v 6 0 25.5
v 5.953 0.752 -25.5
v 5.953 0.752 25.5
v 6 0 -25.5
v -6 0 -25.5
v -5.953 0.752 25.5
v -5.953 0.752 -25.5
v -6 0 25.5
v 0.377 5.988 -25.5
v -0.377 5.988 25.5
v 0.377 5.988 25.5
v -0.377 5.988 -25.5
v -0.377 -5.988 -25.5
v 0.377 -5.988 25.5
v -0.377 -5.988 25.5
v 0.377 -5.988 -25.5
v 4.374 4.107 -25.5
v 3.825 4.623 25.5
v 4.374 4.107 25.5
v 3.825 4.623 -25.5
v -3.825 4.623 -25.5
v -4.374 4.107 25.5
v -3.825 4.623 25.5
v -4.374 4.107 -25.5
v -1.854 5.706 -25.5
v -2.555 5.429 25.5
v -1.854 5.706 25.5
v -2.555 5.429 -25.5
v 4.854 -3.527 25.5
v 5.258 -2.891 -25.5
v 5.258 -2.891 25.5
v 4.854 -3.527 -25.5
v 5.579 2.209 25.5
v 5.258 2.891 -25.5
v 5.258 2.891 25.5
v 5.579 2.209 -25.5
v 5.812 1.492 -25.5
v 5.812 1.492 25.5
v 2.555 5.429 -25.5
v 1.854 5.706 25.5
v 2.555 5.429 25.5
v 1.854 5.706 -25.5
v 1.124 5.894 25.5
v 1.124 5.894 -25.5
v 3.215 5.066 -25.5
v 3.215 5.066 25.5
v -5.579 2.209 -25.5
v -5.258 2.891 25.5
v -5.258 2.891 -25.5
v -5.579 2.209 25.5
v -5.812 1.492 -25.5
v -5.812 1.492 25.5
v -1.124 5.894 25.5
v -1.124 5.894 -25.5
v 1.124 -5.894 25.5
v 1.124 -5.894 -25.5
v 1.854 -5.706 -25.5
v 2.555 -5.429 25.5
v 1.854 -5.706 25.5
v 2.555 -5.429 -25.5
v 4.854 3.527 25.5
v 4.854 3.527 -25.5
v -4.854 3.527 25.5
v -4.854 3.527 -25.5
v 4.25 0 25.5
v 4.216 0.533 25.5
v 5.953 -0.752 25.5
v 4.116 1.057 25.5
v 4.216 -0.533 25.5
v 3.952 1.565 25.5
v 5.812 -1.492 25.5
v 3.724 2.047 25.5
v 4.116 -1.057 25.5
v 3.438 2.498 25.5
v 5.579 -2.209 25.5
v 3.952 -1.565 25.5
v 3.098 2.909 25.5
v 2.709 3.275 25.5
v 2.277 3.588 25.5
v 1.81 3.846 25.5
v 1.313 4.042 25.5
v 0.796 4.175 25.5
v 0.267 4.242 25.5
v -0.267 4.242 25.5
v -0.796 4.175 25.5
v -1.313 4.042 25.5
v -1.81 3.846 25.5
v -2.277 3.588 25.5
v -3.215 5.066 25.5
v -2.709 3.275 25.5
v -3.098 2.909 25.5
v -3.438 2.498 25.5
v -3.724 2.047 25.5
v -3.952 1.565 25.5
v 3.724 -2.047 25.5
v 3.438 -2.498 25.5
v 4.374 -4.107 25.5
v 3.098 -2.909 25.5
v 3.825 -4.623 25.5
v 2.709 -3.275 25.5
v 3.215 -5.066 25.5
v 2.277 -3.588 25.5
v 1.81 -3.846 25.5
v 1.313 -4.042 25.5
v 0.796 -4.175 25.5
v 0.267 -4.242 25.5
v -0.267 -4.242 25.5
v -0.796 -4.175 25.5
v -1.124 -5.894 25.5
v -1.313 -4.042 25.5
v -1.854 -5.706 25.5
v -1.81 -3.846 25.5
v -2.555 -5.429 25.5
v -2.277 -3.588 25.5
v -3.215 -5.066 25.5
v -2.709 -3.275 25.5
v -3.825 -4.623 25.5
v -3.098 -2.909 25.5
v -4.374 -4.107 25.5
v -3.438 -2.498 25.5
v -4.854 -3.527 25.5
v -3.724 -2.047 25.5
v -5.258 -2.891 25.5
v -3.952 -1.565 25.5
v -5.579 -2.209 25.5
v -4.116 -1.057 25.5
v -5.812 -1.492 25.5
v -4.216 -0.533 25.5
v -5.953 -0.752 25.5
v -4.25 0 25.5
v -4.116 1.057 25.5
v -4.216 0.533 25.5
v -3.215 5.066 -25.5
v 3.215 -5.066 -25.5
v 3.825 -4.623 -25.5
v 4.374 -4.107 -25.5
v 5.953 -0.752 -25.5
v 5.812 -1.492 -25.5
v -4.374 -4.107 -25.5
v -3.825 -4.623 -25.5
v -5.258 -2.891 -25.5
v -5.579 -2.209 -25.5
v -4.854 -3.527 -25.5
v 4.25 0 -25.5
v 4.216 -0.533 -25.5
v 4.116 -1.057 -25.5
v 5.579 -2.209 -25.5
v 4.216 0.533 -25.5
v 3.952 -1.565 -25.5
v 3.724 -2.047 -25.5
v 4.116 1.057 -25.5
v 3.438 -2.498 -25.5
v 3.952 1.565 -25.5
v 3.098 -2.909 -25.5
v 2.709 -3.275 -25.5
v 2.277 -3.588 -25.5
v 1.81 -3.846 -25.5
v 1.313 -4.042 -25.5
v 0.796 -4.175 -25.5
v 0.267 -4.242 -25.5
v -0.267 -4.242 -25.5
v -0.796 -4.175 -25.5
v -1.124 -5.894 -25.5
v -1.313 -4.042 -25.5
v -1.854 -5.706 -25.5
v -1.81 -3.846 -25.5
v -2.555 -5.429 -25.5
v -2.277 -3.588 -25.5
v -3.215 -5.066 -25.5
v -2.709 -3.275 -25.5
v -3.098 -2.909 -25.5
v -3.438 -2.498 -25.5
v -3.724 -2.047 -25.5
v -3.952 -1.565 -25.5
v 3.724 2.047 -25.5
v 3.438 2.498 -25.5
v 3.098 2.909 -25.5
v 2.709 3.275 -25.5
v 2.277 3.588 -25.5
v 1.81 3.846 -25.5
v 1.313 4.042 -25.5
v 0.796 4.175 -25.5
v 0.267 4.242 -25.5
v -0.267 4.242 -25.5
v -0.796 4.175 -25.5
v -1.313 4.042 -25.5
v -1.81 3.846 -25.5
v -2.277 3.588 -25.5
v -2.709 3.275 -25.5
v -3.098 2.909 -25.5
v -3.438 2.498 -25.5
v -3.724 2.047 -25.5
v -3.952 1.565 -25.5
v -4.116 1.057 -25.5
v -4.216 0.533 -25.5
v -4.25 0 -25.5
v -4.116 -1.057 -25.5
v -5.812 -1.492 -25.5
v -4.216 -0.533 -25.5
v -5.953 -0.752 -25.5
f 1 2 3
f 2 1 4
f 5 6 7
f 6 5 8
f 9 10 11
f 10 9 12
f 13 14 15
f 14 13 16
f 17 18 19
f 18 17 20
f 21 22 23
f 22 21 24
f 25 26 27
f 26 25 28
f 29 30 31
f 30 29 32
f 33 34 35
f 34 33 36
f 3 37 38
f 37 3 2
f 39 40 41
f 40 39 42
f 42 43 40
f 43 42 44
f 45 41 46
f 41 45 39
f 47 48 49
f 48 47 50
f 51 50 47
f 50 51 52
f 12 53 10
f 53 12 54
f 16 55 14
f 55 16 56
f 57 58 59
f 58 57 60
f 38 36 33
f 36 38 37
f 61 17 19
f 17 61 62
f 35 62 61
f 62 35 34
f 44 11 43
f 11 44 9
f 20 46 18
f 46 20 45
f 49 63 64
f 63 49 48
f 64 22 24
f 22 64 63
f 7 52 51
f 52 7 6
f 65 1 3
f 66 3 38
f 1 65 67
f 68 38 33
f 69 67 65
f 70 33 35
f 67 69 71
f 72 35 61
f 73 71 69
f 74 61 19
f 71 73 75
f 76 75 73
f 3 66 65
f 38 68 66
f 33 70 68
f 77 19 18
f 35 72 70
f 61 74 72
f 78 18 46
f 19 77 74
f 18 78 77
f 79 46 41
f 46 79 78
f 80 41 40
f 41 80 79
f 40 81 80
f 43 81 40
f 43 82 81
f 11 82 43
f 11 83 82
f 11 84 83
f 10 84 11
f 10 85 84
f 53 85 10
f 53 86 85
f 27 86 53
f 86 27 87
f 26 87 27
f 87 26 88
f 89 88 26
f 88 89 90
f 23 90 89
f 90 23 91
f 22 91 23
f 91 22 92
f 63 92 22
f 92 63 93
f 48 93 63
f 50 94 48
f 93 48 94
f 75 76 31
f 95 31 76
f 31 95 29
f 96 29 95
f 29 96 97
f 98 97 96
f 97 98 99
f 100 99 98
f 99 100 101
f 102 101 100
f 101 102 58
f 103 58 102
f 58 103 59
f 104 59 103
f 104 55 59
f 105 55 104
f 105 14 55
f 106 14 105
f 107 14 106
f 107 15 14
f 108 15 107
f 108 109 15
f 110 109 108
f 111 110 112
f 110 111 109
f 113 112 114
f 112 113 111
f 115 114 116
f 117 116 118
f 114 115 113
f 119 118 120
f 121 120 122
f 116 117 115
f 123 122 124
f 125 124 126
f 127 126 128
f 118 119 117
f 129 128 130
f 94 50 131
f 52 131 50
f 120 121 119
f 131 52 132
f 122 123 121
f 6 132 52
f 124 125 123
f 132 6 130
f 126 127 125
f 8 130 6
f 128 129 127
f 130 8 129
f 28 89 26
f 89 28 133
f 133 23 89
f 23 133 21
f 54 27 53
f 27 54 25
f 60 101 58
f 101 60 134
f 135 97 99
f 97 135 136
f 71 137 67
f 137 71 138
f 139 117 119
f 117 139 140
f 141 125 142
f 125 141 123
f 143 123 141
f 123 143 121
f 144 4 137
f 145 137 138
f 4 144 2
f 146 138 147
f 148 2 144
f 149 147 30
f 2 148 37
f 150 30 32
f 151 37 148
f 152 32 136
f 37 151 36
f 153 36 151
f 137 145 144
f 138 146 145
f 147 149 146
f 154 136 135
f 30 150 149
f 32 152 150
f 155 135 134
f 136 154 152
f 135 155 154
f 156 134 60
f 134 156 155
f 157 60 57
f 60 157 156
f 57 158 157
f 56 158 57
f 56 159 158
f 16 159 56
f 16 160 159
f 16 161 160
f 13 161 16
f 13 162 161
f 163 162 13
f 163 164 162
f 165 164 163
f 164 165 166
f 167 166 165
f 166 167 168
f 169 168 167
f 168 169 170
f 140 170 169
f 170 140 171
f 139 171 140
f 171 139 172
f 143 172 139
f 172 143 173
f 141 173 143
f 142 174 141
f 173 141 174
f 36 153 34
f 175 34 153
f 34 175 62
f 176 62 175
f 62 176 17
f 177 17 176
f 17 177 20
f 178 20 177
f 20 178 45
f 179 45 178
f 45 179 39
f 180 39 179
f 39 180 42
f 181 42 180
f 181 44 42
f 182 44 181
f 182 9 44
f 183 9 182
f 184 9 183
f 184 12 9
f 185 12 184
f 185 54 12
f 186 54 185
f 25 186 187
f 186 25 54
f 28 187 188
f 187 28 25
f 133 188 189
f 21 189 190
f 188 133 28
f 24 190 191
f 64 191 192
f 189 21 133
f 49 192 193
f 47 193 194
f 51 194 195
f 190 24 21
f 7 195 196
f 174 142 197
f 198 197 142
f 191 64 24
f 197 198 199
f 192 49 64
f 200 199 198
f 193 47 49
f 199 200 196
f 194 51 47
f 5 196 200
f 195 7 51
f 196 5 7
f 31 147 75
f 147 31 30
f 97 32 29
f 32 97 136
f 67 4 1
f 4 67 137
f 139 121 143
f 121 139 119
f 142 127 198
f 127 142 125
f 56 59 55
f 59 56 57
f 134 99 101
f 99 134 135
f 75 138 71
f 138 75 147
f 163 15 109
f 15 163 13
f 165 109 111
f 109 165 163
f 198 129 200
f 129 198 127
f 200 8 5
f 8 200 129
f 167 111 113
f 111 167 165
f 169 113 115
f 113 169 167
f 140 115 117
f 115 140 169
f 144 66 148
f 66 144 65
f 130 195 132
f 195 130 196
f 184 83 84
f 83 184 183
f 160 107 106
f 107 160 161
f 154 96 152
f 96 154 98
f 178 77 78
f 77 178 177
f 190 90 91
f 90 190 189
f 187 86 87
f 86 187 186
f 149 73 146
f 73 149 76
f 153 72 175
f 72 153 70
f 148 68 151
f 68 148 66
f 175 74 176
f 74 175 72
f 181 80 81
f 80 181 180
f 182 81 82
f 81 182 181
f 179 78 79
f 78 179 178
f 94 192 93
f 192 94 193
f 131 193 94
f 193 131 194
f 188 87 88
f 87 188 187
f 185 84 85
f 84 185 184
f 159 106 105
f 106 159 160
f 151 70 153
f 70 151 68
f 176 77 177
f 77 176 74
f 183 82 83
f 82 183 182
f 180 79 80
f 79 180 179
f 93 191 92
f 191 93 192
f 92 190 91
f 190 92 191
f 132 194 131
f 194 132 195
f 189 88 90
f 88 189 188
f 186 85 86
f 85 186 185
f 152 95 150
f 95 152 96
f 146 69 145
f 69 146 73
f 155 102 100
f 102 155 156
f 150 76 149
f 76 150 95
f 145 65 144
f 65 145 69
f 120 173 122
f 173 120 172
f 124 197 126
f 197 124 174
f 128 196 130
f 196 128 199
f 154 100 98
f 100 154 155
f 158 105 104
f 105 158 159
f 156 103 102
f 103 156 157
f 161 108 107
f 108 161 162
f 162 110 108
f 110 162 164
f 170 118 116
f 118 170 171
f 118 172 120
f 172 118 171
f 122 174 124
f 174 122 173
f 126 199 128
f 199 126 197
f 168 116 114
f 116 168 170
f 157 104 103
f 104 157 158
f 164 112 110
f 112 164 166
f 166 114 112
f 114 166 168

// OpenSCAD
$fn = 50;


difference() {
	union() {
		translate(v = [0, 0, -25.5000000000]) {
			cylinder(h = 51, r = 6.0000000000);
		}
	}
	union() {
		translate(v = [0, 0, -100.0000000000]) {
			cylinder(h = 200, r = 4.2500000000);
		}
	}
}
